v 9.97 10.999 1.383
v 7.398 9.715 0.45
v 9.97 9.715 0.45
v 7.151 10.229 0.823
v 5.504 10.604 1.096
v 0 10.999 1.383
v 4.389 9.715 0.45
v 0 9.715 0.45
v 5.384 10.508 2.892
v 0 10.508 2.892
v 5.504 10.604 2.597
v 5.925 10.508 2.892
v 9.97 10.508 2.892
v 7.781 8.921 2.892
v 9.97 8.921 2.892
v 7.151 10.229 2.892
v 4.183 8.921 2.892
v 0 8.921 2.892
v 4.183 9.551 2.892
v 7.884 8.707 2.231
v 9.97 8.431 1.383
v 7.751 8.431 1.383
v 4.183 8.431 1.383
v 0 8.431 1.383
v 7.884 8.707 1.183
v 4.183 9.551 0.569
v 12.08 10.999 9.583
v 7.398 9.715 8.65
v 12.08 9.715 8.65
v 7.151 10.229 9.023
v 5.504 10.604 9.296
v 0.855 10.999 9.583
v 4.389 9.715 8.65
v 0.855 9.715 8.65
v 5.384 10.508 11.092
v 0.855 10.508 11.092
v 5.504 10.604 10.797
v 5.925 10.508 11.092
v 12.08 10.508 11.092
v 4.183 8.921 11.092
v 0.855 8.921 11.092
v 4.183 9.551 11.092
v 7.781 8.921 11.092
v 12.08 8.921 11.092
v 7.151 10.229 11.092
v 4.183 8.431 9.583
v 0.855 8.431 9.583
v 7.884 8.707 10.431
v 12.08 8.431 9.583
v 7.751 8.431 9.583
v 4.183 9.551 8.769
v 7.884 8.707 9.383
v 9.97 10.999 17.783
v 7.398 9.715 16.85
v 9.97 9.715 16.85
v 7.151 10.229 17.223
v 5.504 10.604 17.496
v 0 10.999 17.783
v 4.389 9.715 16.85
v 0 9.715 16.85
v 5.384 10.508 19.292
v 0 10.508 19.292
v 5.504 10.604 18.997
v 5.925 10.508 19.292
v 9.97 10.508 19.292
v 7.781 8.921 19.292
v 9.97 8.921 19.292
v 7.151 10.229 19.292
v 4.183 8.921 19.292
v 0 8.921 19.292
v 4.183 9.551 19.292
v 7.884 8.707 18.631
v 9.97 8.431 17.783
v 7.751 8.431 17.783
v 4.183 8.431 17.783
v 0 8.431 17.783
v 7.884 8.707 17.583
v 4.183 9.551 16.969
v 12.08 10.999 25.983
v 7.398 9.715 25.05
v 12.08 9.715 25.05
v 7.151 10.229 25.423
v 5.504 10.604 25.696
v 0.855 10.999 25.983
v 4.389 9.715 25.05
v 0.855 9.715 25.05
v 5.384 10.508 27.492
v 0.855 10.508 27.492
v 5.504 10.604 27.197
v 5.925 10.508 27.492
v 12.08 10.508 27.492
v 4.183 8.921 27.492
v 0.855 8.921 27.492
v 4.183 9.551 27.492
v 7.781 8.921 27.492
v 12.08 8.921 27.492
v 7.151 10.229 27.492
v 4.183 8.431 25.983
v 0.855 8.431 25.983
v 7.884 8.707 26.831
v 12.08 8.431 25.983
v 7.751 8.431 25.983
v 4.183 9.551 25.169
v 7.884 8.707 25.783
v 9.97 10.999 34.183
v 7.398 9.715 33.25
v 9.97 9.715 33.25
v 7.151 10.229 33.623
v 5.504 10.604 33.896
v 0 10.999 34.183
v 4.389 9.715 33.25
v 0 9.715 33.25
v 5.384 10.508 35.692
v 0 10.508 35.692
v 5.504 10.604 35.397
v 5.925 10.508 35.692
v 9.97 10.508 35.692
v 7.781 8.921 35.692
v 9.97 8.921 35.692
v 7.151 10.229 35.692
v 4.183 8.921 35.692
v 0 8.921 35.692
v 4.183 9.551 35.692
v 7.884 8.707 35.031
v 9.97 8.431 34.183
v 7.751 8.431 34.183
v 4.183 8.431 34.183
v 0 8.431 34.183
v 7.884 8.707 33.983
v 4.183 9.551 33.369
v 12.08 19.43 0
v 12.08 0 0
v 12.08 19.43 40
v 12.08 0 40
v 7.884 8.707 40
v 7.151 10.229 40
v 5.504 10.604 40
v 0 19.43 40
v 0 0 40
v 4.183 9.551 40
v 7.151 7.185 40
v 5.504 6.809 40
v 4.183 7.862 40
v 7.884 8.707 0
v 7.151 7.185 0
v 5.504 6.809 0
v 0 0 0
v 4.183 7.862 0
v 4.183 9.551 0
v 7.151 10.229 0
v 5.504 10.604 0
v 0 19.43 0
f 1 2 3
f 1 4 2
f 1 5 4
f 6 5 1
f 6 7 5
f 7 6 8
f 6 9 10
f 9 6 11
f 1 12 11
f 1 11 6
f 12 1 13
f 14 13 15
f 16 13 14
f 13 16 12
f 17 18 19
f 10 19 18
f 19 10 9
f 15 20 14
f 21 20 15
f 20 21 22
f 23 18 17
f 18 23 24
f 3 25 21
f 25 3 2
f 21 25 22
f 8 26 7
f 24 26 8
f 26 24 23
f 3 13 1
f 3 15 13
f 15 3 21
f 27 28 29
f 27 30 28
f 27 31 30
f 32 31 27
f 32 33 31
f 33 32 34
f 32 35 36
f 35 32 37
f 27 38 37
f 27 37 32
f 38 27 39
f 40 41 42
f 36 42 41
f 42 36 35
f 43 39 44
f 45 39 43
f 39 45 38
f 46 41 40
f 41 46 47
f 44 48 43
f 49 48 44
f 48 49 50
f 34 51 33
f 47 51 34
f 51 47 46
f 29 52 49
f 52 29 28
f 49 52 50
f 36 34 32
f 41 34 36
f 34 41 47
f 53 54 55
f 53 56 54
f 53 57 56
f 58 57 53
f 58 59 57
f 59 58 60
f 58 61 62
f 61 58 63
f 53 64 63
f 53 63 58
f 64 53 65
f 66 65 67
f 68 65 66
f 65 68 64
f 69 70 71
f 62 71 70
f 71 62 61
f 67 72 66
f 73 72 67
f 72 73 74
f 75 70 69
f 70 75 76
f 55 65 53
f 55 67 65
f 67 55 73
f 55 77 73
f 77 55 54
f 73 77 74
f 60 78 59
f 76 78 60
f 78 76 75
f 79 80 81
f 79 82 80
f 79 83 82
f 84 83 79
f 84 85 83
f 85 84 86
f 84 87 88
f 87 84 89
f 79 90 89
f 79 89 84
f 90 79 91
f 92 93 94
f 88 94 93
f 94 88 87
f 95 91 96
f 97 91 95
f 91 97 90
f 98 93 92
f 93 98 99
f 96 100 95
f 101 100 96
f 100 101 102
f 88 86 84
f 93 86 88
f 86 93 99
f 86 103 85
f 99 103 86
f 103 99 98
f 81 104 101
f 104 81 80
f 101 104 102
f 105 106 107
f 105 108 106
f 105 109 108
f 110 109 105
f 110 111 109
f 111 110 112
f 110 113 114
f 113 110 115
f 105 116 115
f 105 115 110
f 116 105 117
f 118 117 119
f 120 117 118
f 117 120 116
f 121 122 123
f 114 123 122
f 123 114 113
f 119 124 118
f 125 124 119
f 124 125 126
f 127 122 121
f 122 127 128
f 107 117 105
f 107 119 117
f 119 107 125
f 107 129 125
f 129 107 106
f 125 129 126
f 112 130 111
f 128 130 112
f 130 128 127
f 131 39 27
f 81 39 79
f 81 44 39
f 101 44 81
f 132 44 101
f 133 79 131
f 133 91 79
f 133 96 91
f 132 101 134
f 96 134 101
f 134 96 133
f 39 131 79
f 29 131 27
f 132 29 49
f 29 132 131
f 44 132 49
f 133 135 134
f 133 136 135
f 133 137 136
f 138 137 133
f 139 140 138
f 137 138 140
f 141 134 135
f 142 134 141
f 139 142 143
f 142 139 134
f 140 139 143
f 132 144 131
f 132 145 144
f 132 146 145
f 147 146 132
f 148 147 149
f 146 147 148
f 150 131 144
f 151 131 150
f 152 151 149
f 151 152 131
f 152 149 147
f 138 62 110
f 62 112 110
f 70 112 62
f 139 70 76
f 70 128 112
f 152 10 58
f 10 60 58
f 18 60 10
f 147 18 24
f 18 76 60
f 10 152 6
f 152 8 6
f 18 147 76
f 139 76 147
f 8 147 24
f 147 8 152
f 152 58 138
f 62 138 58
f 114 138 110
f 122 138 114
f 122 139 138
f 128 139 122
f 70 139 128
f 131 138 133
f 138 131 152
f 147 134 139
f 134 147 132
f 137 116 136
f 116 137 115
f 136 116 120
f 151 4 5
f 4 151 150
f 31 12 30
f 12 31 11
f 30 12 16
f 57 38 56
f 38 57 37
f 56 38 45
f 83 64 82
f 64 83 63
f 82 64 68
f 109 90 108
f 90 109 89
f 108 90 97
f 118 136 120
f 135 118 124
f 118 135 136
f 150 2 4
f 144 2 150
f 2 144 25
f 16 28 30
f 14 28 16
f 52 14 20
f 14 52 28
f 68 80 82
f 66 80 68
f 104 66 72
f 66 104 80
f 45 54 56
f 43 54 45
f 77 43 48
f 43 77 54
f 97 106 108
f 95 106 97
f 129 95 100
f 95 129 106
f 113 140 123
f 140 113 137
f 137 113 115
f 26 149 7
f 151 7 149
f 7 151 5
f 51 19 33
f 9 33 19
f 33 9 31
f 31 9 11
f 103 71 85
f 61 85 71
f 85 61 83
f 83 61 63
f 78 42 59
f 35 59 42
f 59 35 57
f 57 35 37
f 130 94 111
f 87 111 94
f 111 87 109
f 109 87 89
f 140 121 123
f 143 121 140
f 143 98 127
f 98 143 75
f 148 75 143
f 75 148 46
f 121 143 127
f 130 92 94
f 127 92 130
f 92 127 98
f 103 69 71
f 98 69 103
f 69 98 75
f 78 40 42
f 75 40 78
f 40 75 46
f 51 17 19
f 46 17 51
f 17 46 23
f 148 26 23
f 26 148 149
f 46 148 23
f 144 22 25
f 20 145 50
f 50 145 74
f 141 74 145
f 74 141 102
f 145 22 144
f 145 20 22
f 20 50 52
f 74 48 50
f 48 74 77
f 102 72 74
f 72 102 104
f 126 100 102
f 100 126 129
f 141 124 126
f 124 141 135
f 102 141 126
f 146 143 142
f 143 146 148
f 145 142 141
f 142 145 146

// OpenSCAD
/* doodle-meta {"version":1,"parameters":{"width":{"label":"Overall width","description":"Changes the body width (X)","unit":"mm","feature":"body_width"},"depth":{"label":"Overall depth","description":"Changes the body depth (Y)","unit":"mm","feature":"body_depth"},"height":{"label":"Overall height","description":"Changes the body height (Z)","unit":"mm","feature":"body_height"},"slot_width":{"label":"Slot width","description":"Width of each cable retention slot","unit":"mm","feature":"cable_slots"},"slot_height":{"label":"Slot height","description":"Height of each cable retention slot","unit":"mm","feature":"cable_slots"},"slot_count":{"label":"Slot count","description":"Number of cable retention slots","unit":"count","feature":"cable_slots"}},"features":{"body_width":{"kind":"dimension","axis":"x","label":"Overall width"},"body_depth":{"kind":"dimension","axis":"y","label":"Overall depth"},"body_height":{"kind":"dimension","axis":"z","label":"Overall height"},"cable_slots":{"kind":"region","label":"Cable retention slots","min":[{"parameter":"width","scale":0.25,"offset":0},{"parameter":"depth","scale":0.1,"offset":0},{"parameter":"height","scale":0.05,"offset":0}],"max":[{"parameter":"width","scale":0.75,"offset":0},{"parameter":"depth","scale":0.9,"offset":0},{"parameter":"height","scale":0.95,"offset":0}]}}} */

// Top-level editable parameters (allowlist)
width = 12.08;
depth = 19.43;
height = 40.0;
slot_width = 2.7;
slot_height = 3.6;
slot_count = 5;

// Derived (not editable)
eps = 0.01;
slot_pitch = (height - 2 * slot_height) / (slot_count - 1);
slot_x_left = width * 0.3245;
slot_x_right = width * 0.5716;
slot_y = depth * 0.5;

module cable_holder() {
    // Positive body: rectangular plate on build plate
    cube([width, depth, height]);

    // Subtractive cutters
    difference() {
        // (handled by outer difference below)
    }
}

// Single top-level design instantiation
difference() {
    cable_holder();

    // Mounting hole: circular through-hole in top flange, cut along Z (top view)
    translate([width * 0.4915, depth * (1 - 0.5519), -eps])
        cylinder(h = height + 2 * eps, d = width * 0.3223, center = false);

    // Cable retention slots: staggered vertical array, cut along X (right view)
    for (i = [0 : slot_count - 1]) {
        slot_z = slot_height / 2 + i * slot_pitch;
        slot_x = (i % 2 == 0) ? slot_x_left : slot_x_right;
        translate([slot_x, slot_y, slot_z])
            rotate([0, 90, 0])
                cylinder(h = width + 2 * eps, d = slot_width, center = true);
    }
}
